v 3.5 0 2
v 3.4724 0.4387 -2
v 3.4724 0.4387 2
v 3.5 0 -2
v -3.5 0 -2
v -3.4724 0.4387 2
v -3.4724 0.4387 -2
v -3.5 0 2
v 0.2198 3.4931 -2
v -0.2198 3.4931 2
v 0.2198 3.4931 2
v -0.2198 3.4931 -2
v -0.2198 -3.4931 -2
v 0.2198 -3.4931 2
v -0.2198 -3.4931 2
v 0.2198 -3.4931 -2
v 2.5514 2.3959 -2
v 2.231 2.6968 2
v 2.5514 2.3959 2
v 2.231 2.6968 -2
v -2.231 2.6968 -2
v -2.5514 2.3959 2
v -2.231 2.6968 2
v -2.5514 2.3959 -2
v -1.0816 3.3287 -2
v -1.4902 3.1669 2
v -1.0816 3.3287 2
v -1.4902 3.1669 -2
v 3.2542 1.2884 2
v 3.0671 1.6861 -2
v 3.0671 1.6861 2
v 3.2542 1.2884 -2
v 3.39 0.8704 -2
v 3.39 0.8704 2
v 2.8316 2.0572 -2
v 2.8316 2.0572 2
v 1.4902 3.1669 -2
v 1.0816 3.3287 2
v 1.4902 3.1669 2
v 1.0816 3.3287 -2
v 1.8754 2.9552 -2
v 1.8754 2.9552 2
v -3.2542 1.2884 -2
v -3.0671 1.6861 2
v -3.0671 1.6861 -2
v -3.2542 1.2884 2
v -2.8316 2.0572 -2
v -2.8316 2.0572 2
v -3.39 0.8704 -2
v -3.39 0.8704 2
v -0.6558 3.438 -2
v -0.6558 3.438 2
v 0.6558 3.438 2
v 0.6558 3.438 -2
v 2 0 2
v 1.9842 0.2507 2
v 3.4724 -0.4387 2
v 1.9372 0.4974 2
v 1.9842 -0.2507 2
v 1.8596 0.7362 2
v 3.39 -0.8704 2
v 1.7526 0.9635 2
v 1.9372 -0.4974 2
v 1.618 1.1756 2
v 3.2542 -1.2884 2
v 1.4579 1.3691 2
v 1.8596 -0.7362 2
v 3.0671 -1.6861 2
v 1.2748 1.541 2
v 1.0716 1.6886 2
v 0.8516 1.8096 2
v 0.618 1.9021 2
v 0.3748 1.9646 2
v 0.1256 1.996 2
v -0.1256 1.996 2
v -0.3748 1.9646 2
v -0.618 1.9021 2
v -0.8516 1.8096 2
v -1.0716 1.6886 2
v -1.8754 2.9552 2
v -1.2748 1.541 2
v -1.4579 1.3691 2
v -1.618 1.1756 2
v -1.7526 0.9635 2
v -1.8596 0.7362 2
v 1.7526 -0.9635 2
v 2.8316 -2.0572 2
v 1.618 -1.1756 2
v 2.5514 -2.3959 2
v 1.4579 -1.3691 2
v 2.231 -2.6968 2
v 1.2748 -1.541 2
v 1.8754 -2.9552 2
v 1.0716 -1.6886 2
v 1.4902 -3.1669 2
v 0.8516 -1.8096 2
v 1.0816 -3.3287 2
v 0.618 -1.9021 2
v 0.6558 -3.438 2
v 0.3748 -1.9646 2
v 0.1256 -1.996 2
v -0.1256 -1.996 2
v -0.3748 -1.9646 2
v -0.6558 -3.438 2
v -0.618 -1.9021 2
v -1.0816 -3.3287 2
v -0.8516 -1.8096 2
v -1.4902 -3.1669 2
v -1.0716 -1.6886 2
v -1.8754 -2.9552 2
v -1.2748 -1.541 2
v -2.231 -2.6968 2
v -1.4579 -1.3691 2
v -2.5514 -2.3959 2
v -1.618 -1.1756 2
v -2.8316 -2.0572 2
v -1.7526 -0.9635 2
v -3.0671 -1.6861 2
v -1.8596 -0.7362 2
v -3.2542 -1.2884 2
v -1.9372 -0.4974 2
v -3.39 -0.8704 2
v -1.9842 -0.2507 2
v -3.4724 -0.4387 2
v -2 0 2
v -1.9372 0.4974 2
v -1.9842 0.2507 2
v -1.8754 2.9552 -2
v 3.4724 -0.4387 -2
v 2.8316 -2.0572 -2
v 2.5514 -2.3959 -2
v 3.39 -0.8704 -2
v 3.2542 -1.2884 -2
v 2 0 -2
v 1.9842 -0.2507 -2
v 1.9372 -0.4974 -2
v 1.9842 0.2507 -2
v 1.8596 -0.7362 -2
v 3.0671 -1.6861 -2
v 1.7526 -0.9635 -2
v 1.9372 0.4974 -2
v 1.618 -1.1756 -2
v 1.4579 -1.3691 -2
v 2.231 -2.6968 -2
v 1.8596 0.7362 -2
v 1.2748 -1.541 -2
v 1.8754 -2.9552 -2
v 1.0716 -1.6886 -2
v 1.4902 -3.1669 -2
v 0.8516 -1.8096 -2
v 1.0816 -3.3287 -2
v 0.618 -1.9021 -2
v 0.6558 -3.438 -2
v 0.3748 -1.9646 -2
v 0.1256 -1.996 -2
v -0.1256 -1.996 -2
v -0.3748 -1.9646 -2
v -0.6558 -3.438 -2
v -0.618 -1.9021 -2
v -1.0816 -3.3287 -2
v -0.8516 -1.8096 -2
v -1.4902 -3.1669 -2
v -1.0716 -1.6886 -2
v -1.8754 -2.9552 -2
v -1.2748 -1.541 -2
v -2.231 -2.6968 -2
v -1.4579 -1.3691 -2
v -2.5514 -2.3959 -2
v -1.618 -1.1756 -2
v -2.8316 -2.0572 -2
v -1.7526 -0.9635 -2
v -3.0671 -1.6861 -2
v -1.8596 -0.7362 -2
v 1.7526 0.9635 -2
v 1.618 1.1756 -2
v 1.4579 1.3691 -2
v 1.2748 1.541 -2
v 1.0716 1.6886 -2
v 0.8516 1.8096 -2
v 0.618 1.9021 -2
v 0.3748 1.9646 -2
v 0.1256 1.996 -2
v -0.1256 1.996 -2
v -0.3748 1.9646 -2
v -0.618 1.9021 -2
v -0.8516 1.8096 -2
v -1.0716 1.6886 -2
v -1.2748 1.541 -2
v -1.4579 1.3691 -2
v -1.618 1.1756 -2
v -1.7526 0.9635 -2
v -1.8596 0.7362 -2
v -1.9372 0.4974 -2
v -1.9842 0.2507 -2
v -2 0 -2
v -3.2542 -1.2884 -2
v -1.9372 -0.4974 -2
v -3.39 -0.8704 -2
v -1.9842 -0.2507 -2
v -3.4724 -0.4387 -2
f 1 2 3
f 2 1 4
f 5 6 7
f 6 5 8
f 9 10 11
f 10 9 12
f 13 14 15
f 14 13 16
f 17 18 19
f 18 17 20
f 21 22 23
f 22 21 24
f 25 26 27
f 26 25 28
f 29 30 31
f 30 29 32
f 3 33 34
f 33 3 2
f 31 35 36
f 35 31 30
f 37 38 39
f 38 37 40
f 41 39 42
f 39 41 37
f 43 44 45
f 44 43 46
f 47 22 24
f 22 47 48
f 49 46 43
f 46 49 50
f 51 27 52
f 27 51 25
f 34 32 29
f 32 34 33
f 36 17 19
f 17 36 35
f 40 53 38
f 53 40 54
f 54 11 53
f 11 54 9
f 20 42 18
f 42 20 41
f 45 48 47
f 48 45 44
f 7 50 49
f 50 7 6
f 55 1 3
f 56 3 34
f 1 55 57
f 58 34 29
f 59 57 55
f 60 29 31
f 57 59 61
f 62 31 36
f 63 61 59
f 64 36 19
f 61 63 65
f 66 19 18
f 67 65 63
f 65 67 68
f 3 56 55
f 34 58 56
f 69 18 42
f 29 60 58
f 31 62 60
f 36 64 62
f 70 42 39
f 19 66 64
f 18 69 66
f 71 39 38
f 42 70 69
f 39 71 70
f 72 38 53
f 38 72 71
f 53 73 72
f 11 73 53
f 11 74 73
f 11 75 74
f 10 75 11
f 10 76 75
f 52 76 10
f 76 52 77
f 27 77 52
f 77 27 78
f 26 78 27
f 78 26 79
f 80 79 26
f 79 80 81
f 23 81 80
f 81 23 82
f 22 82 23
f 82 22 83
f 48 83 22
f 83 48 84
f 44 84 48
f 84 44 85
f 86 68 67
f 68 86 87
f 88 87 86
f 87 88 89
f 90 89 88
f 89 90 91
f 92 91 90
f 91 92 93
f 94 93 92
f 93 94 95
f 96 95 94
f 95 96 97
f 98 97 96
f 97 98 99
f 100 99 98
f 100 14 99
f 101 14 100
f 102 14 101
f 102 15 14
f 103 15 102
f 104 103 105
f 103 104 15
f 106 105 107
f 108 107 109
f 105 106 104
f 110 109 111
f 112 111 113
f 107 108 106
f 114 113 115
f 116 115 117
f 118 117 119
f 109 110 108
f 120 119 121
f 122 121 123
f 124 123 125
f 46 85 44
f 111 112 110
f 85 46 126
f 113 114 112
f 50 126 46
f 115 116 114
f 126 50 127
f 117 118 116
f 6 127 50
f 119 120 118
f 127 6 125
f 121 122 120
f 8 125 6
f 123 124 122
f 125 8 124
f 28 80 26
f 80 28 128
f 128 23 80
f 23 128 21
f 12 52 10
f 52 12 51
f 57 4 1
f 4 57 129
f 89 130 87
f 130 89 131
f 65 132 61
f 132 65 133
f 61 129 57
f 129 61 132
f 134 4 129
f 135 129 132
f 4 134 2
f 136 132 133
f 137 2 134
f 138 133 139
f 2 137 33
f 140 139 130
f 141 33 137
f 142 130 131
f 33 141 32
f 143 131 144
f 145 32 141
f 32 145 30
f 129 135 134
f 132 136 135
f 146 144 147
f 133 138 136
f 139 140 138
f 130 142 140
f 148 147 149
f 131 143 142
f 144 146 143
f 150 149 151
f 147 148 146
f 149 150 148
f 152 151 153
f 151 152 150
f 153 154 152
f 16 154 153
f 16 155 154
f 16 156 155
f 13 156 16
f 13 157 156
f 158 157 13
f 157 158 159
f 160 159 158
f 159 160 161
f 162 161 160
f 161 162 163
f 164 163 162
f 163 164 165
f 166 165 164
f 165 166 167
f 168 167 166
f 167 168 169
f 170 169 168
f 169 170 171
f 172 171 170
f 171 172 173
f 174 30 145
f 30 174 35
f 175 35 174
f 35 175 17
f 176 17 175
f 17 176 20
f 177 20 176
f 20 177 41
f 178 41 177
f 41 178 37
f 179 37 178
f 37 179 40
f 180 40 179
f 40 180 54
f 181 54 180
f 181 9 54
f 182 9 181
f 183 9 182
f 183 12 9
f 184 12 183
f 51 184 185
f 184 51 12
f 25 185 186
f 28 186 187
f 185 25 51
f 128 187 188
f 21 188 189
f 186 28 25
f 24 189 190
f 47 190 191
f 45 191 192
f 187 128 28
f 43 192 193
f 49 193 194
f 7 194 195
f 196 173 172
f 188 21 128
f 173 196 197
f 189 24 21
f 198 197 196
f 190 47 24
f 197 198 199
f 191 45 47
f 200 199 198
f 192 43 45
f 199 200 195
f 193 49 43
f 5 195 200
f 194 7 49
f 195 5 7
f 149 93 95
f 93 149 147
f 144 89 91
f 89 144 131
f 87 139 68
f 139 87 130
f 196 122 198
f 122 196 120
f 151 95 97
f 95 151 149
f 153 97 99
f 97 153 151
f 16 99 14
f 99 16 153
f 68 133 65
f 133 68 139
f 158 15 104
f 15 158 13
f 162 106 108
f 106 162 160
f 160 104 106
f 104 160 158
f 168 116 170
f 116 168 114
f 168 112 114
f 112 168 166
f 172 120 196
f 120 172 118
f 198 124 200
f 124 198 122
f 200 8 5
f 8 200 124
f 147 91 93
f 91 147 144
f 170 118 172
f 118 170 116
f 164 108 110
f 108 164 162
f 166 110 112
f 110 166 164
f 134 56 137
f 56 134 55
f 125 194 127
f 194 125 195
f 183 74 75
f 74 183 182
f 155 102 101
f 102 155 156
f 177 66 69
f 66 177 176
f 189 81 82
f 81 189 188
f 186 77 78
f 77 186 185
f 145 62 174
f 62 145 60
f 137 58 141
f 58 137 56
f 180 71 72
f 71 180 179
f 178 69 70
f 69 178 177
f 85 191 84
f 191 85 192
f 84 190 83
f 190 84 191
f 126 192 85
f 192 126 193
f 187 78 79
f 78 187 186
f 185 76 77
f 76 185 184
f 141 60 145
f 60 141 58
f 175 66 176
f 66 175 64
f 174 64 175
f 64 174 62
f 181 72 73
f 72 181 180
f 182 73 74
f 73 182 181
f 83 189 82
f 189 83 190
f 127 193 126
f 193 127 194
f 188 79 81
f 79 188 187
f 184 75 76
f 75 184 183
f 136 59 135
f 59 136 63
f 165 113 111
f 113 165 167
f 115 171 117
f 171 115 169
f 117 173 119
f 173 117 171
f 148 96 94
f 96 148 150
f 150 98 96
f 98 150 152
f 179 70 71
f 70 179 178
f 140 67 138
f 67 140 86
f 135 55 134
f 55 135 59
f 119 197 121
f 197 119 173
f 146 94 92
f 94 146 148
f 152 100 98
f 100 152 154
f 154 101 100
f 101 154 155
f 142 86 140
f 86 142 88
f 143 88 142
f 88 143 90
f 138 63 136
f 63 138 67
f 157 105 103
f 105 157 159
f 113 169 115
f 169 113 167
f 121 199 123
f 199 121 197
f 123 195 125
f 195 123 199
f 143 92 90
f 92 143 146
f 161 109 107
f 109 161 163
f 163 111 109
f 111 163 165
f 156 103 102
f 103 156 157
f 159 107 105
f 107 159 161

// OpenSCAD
$fn = 50;


difference() {
	union() {
		translate(v = [0, 0, -2.0000000000]) {
			cylinder(h = 4, r = 3.5000000000);
		}
	}
	union() {
		translate(v = [0, 0, -100.0000000000]) {
			cylinder(h = 200, r = 2);
		}
	}
}
